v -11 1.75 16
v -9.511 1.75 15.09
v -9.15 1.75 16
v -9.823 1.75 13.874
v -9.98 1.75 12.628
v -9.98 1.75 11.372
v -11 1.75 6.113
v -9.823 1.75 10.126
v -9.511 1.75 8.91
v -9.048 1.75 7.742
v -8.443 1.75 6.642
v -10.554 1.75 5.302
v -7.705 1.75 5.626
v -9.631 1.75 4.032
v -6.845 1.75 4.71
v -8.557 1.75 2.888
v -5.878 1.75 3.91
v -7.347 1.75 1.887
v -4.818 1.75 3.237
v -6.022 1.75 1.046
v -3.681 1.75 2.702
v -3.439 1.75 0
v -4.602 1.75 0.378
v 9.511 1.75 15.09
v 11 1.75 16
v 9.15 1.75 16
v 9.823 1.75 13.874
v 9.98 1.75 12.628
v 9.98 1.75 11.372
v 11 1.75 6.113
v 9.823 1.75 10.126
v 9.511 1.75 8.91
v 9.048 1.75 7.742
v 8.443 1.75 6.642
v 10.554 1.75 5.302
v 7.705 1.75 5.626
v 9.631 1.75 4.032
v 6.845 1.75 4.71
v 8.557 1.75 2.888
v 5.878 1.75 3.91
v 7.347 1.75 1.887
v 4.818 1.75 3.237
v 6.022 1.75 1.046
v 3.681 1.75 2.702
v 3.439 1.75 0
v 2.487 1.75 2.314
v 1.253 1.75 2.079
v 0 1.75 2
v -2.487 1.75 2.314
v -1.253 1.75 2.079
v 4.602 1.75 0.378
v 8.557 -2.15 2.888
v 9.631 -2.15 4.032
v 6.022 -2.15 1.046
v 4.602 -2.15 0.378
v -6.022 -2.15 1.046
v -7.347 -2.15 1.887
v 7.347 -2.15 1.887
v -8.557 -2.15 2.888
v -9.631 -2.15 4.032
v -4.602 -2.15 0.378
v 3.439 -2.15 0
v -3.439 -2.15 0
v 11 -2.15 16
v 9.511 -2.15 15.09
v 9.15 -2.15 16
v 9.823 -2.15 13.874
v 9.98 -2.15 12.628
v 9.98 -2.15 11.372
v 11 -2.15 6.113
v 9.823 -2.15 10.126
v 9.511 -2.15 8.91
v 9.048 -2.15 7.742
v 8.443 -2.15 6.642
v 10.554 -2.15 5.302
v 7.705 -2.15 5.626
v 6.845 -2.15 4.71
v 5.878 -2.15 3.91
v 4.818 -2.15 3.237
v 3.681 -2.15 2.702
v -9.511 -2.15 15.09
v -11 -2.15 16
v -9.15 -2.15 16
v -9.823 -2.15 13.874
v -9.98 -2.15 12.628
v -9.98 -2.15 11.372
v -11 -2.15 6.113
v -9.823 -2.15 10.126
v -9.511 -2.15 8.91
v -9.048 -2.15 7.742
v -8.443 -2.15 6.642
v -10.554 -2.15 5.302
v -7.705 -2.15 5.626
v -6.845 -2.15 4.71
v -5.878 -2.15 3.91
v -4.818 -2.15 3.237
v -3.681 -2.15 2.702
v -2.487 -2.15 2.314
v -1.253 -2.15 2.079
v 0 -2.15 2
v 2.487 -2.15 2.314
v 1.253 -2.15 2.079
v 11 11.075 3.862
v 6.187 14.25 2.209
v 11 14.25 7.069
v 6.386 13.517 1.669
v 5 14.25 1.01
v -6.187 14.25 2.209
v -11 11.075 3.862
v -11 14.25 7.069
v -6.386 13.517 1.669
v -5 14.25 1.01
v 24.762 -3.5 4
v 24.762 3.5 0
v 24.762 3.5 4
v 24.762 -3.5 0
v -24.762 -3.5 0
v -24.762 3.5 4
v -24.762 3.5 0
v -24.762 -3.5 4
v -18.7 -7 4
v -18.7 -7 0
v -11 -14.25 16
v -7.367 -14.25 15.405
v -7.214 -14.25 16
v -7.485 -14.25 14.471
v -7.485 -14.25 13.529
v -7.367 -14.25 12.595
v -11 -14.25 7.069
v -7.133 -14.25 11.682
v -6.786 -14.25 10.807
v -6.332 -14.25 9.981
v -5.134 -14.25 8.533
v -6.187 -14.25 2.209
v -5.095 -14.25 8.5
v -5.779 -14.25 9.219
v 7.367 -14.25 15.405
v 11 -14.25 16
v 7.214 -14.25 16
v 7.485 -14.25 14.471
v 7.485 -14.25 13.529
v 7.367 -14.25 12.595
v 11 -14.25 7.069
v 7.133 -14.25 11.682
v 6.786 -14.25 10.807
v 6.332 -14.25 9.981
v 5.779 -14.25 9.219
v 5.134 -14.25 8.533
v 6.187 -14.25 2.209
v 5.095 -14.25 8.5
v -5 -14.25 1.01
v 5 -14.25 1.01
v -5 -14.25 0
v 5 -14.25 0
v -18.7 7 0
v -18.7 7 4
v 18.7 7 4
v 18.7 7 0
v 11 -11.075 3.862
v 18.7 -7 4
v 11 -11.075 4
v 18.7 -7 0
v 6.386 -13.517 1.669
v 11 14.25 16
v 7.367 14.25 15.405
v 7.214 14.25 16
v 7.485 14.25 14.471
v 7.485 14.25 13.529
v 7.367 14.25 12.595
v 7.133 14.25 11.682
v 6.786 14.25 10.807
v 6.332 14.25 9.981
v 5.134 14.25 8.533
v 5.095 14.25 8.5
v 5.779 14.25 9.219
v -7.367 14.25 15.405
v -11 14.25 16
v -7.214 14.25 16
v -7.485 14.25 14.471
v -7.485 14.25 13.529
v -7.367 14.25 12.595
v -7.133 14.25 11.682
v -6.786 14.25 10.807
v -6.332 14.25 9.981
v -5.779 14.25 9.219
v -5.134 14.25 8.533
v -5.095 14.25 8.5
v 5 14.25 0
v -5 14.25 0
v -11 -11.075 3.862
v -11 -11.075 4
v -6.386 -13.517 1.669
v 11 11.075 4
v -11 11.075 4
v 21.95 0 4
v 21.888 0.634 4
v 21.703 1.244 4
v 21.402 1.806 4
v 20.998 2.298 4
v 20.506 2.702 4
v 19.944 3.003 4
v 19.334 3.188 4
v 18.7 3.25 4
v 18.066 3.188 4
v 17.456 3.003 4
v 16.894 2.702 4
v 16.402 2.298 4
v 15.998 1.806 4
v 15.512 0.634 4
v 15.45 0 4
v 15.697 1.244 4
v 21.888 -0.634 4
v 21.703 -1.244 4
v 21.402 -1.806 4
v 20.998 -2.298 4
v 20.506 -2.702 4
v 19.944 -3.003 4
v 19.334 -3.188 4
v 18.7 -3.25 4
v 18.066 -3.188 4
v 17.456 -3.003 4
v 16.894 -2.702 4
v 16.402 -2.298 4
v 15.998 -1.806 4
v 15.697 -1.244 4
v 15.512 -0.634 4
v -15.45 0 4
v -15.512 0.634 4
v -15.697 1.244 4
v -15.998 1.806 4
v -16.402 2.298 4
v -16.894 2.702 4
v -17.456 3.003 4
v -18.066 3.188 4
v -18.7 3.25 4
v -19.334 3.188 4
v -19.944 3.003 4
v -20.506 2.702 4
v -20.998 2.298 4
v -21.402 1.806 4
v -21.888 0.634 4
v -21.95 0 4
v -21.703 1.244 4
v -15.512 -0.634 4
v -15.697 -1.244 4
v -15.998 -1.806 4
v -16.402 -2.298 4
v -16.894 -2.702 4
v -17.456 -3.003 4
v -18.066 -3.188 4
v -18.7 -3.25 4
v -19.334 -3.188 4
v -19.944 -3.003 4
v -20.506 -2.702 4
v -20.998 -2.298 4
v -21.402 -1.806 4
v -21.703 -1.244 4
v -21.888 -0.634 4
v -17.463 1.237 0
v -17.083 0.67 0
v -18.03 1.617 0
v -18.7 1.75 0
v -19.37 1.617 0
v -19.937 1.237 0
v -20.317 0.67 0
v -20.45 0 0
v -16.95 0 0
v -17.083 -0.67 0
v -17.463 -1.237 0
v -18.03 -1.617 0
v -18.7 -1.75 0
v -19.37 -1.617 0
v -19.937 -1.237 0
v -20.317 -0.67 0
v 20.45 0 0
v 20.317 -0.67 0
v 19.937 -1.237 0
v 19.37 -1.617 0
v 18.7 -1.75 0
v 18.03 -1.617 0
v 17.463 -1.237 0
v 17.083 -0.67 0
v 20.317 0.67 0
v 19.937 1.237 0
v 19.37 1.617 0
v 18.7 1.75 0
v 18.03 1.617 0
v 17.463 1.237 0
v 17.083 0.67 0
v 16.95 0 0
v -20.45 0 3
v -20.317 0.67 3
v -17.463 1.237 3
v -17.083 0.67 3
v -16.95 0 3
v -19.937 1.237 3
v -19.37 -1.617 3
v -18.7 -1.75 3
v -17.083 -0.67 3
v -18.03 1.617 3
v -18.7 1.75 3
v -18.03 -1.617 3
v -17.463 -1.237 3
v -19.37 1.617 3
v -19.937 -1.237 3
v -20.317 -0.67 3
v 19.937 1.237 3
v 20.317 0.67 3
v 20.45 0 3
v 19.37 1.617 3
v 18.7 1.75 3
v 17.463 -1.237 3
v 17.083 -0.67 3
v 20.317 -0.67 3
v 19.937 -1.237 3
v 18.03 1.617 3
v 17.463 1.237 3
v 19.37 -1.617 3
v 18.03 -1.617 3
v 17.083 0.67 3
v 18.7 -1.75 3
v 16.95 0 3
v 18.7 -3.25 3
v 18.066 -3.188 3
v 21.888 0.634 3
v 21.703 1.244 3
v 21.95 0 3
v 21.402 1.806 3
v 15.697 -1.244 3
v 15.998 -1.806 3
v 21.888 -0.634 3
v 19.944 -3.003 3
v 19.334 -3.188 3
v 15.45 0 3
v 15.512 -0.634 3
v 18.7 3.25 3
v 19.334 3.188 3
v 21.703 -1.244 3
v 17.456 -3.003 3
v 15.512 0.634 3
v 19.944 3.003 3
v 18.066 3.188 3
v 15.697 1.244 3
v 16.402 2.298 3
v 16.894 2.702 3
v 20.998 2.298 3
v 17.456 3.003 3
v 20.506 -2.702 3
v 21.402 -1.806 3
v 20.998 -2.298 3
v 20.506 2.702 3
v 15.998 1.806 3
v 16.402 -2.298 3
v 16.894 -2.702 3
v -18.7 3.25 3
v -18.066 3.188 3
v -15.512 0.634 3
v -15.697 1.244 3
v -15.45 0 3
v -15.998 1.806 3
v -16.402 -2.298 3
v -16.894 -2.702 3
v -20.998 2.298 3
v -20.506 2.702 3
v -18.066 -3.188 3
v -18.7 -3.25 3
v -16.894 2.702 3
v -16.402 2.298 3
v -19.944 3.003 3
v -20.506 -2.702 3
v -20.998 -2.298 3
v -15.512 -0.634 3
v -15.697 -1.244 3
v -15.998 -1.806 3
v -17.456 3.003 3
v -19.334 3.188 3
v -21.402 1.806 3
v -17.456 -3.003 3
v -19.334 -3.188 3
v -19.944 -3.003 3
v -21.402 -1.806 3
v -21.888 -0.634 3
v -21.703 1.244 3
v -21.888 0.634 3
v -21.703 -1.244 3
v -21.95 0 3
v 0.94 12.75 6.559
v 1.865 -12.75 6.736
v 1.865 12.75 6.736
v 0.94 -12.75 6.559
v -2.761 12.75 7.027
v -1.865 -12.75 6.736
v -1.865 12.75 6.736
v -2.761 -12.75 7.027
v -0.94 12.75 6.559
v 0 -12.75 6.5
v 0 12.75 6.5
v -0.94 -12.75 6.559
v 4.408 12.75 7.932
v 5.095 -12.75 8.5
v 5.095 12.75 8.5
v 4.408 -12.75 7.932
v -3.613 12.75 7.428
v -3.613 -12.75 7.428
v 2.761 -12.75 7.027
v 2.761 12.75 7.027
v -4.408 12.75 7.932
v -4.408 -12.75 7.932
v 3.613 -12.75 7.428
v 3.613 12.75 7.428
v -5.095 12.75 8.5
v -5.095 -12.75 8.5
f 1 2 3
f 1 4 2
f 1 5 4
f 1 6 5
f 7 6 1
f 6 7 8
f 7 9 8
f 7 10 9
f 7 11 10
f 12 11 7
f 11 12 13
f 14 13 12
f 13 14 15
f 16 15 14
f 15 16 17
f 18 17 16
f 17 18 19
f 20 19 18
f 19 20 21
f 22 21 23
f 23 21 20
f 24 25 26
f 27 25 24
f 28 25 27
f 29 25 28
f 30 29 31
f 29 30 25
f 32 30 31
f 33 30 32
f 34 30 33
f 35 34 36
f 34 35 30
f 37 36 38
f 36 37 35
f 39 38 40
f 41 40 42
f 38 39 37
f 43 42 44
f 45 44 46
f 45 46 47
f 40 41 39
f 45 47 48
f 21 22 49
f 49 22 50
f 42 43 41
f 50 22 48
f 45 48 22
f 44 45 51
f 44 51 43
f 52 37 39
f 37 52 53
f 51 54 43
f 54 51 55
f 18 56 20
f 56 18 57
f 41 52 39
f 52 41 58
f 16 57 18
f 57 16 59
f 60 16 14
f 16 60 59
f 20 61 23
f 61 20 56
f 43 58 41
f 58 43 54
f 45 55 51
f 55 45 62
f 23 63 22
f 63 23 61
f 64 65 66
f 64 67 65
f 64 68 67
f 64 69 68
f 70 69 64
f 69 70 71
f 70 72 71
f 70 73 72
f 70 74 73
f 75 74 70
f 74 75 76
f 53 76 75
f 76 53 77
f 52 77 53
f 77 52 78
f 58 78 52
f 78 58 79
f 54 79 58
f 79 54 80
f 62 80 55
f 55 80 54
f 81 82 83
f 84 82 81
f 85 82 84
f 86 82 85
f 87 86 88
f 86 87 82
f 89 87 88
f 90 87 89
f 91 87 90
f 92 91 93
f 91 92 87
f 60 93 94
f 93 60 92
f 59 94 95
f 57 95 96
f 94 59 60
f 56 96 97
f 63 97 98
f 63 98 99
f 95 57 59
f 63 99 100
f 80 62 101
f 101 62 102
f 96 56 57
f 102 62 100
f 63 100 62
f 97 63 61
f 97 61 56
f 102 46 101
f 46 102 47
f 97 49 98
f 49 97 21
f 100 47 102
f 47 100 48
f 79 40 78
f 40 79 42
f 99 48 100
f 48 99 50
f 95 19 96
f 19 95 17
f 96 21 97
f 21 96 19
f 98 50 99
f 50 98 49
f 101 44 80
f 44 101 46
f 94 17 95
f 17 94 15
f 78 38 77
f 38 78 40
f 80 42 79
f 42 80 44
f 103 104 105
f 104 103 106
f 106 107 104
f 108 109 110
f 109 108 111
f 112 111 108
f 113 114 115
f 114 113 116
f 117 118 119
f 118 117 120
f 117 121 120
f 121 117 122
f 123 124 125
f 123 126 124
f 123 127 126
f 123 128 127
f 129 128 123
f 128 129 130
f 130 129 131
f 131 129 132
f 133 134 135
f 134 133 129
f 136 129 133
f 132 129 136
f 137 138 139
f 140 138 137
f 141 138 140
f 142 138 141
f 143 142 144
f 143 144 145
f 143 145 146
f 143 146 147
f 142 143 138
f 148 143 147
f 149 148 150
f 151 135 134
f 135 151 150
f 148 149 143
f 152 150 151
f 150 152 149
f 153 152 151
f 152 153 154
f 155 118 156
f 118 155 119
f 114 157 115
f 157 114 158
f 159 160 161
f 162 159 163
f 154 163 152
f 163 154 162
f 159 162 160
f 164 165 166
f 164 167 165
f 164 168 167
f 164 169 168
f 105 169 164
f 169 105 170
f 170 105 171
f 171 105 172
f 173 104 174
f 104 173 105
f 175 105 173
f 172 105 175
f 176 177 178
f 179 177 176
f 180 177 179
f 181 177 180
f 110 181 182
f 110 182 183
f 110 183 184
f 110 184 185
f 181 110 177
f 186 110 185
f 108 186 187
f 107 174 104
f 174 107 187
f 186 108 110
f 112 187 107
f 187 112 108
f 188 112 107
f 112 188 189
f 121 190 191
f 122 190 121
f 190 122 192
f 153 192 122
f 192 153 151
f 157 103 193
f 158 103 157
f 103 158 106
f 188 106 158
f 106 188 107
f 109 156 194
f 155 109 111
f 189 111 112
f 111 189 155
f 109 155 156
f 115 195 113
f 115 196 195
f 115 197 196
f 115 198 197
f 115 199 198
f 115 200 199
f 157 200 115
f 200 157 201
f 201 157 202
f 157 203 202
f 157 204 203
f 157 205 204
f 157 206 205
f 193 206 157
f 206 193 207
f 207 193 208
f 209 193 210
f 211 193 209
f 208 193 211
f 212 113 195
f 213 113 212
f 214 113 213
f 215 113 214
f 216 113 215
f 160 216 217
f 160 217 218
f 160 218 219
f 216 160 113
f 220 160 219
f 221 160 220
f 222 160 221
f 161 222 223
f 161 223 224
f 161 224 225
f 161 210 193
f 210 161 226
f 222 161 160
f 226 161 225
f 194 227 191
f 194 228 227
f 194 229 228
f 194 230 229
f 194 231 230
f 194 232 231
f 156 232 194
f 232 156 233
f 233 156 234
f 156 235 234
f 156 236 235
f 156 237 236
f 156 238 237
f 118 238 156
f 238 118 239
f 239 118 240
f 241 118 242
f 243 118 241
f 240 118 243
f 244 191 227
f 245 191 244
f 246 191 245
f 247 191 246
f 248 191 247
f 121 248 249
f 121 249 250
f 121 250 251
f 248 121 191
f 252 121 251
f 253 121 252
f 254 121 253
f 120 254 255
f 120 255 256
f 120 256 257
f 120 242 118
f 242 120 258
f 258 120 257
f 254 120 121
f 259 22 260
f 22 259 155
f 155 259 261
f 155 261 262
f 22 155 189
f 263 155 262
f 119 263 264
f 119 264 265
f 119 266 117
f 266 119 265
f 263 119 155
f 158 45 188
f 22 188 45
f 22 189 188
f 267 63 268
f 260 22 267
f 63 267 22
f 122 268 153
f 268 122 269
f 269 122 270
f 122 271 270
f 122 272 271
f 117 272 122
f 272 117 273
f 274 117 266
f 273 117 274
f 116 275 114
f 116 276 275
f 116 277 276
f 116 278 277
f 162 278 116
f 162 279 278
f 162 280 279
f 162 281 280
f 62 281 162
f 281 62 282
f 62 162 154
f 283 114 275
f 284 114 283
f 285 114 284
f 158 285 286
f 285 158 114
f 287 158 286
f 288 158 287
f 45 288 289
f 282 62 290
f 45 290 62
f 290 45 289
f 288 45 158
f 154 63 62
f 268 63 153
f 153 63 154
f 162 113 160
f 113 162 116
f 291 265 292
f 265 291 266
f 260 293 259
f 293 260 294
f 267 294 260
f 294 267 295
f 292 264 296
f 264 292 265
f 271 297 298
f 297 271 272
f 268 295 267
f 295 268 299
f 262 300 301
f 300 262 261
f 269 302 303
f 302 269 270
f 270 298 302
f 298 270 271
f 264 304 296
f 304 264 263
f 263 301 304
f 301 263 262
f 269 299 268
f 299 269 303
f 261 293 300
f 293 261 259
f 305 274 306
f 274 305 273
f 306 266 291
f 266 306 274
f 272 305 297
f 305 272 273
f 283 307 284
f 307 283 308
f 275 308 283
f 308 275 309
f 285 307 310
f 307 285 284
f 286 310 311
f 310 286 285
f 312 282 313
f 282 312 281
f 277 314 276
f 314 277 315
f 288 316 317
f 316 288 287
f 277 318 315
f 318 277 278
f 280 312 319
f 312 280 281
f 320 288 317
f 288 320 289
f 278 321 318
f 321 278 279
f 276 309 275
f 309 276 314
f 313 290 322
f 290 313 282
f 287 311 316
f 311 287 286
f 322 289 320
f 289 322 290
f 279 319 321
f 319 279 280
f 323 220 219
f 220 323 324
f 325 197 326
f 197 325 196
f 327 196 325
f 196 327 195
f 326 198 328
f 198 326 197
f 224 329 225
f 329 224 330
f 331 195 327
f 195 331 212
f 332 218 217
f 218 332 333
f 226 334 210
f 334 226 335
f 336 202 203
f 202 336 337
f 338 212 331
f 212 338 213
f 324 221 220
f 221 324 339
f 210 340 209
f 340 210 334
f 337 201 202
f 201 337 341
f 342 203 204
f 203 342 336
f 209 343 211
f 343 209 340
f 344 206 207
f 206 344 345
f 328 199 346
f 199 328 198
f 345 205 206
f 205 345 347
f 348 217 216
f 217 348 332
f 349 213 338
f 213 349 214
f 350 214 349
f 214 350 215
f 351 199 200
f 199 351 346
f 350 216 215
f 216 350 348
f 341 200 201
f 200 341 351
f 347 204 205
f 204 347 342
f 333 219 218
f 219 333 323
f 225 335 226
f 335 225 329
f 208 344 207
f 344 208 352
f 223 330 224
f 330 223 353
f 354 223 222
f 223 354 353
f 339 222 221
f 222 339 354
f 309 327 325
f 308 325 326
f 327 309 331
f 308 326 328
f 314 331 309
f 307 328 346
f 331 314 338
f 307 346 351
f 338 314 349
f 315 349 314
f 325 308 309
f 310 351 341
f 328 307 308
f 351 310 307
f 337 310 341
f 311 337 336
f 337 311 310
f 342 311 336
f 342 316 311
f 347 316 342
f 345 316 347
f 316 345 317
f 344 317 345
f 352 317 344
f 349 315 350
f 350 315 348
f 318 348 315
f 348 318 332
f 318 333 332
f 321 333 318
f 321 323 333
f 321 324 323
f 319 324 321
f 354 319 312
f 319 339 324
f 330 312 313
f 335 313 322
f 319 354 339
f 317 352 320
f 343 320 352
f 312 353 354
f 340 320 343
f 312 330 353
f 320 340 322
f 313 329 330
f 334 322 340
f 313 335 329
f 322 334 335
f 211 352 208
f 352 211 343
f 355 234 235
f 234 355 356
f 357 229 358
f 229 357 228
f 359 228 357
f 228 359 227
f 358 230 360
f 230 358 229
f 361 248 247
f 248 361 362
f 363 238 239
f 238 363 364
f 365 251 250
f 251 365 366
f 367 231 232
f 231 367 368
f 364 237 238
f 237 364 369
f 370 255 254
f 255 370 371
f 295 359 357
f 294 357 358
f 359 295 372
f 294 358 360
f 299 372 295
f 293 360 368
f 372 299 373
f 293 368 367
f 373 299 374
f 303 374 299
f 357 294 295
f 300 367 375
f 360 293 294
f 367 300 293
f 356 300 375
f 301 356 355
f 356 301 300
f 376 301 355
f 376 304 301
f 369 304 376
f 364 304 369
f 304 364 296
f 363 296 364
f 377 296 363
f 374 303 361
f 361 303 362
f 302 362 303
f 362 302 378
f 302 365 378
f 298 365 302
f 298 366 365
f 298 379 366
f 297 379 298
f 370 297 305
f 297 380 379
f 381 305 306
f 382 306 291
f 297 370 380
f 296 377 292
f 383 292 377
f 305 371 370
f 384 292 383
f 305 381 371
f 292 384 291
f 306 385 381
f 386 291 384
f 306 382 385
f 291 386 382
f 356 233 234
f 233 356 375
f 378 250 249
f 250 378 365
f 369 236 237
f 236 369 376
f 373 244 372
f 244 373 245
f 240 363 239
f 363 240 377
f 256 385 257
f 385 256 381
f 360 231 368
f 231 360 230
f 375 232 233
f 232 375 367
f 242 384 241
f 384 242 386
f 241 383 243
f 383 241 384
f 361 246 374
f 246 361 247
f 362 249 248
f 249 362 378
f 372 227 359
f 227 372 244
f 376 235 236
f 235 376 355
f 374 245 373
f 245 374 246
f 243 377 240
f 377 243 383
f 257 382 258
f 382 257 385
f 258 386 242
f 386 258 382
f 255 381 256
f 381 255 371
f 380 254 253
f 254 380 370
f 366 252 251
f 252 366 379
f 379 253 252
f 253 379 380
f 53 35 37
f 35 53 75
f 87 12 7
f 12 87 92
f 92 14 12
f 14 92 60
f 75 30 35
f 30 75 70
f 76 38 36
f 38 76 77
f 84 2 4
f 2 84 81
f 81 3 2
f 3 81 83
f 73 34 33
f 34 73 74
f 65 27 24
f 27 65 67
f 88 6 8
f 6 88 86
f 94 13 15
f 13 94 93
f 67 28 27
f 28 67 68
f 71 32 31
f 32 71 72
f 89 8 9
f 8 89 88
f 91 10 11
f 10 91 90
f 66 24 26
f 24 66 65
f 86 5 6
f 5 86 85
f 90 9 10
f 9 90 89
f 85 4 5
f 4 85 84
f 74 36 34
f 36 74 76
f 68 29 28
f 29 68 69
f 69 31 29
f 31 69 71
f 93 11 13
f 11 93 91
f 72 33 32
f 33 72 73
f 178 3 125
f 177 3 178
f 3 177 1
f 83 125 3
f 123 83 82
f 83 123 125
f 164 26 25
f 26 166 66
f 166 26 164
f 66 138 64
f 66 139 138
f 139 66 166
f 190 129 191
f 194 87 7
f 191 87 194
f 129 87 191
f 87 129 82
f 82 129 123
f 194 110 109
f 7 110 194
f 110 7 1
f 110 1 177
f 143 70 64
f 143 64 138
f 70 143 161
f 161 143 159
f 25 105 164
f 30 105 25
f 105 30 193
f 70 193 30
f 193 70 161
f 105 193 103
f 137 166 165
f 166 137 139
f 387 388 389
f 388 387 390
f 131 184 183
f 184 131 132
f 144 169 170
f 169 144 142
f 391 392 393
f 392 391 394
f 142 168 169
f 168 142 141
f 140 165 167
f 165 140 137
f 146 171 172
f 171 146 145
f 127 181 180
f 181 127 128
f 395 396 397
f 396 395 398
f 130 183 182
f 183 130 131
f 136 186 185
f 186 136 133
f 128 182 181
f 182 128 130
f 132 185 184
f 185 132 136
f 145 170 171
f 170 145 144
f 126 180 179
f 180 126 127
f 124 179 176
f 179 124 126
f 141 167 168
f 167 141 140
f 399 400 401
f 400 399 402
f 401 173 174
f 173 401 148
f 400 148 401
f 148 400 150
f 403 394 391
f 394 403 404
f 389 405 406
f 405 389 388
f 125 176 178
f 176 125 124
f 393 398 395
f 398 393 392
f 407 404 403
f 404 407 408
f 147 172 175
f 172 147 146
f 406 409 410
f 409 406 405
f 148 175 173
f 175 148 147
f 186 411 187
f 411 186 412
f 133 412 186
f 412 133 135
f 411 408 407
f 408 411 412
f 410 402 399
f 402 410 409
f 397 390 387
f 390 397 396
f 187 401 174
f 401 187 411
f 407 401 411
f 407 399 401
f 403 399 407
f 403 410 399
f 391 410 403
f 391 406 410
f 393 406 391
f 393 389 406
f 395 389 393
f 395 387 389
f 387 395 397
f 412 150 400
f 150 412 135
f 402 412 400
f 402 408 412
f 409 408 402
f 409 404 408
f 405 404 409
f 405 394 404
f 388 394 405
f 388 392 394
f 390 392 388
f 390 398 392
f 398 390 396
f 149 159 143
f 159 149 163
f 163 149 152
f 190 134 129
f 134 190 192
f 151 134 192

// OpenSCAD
// file: ../configuration.scad
// Layer high for the printing [mm]
layer_height = 0.20; //Slic3r->Print Settings->Layers and perimeters->Layer height

// Spare for the screws heads [mm]
spare = 0.75;
// M6 screw diameter [mm]
M6_head_diameter = 13.6+spare;
//M6_head_diameter = 10.6+spare;
//M6_head_diameter = 12+spare;

// M6 head high (for hiding it) [mm]
//M6_head_height = 4;
M6_head_height = 3.6;
//M6_head_height = 4.5;

// Screws and rods diameters
M8_smooth_rod_diameter = 8.3;
M8_smooth_rod_diameter_catch = 8.4;
// Prumer 8mm tyce
rod_8mm_d = 8.2; //pro dil z-top
M6_diameter = 6.6;
M6_dia=M6_diameter; //pro dil z-top
M6_diamater_horizontal = 6.5;
M3_diameter = 3.7;
M3_diameter_horizontal = 3.5;

//matice trapézové tyče
TRAP_diameter_externa=22; //průmer vnější 


// Nuts diameters
M3_nut_diameter = 7.0;
M3_nut_diameter_horizontal = 6.7;

// ALU profile parameters
ALU_cut_width = 7.9;
ALU_cut_width_horizontal = 7.7;

// Sirka matky do profilu (pokud neni pouzita, tak 0)
//profile_nut_width = 9.5;
profile_nut_width = 0; //pro z-top

// Motors length/depth (for axes Z and Y)
//SX17-1003LQFE (recommended for the Z axis)
motor_length = 29.5;
//SX17-1003 (recommended for the Z axis)
//motor_length = 34;
//SX17-1005
//motor_length = 40;
//SX17-0905 - this motor is too high - the Z end stop holder has to be adjusted
//motor_length = 48;

// Extrusion width [mm]
extrusion_width = 0.66; //Slic3r->Print Settings->Advanced->Default extrusion width

/// Belt type ******************************************************

// GT2 
belt_tooth_distance = 2;
belt_tooth_ratio = 0.5;
belt_tooth_height = 1.4;
belt_thickness = 2.3;

/*
// T2.5
belt_tooth_distance = 2.5;
belt_tooth_ratio = 0.68;
*/
// main file
// PRUSA Mendel  
// y LM8UU holder
// GNU GPL v3
// Josef Průša
// josefprusa@me.com
// prusadjs.cz
// http://www.reprap.org/wiki/Prusa_Mendel
// http://github.com/prusajr/PrusaMendel

include <../configuration.scad>

/**
 * @id bushing
 * @name Bushing
 * @category Printed
 * @id bushing
 */ 
 
y_linear_bearings();

// Linear bushing options

m3_diameter = 3.5;
lm8uu_diameter=15;
lm8uu_length=24;
lm8uu_radius = lm8uu_diameter / 2;
block_height = 2*lm8uu_length+17;

screw_dist = 37.4;

//cut_corners(true, false, true, false); 

module cut_corners(lf,lb,rf,rb)
{
  difference()
  {
	lm8uu_bearing_holder();
	if(lf) translate([(10)-3,(-28.5/2)+3,0]) rotate(a=[0,0,45]) rotate(a=[35,0,0]) translate([0,-5,0]) cube(size = [20,10,20], center = true);
	if(lb)translate([(-10)+3,(-28.5/2)+3,0]) rotate(a=[0,0,-45]) rotate(a=[35,0,0]) translate([0,-5,0]) cube(size = [20,10,20], center = true);
	mirror([ 0, 1, 0 ])
	{
	  if(rf)translate([(10)-3,(-28.5/2)+3,0]) rotate(a=[0,0,45]) rotate(a=[35,0,0]) translate([0,-5,0]) cube(size = [20,10,20], center = true);
	  if(rb)translate([(-10)+3,(-28.5/2)+3,0]) rotate(a=[0,0,-45]) rotate(a=[35,0,0]) translate([0,-5,0]) cube(size = [20,10,20], center = true);
	}
  }
}

module linear_holder_base(length)
{	
difference()
  {
    translate([-6,0,length/2]) cube(size = [16,22,length], center = true);

    translate([0,0,-2]) cylinder(h = length+4, r=lm8uu_diameter/2, $fn=50);
  }
}

module y_linear_bearings()
{
  difference()
  {
	hull()
	{
	  translate([0,0,2]) cube(size = [10,28.5,4], center = true);
	  translate([-screw_dist/2,0,0])rotate(a=[0,0,30])cylinder(h=4, r=7, $fn=6);
	  translate([screw_dist/2,0,0])rotate(a=[0,0,30])cylinder(h=4, r=7, $fn=6); 
	}
	translate([-screw_dist/2,0,-0.1])cylinder(r=m3_diameter/2, h=10, $fn = 16);
	translate([screw_dist/2,0,-0.1])cylinder(r=m3_diameter/2, h=10, $fn = 16);
	  translate([screw_dist/2,0,3]) cylinder(d=6.5, h=30, $fn = 32);
	  translate([-screw_dist/2,0,3]) cylinder(d=6.5, h=30, $fn = 32);

	//hack
	translate([0,14.25,4.5]) rotate(a=[90,0,0]) translate([0,9.5,0]) rotate(a=[0,0,90])
	{
	  translate([-2,0,12.5]) ziptie();
	}
  }
  
  cut_corners(true, true, true, true); 
}

lm8uu_holder_length = lm8uu_length+4.5;
lm8uu_holder_width= lm8uu_diameter+5;

module lm8uu_bearing_holder()
{
  translate([0,14.25,4.5])rotate(a=[90,0,0])translate([0,9.5,0]) rotate(a=[0,0,90])
  {
	difference()
	{
	  union()
	  {
		linear_holder_base(lm8uu_length+4.5);
		translate([-10-2,0,lm8uu_holder_length/2]) cube(size = [4,20,lm8uu_holder_length], center = true);
	  }
	  
	  translate([-2,0,12.5]) ziptie();
	  translate([-14+3,screw_dist/2,14.25]) rotate([0,90,0]) cylinder(r=7/2, h=30, $fn = 32);
	  translate([-14+3,-screw_dist/2,14.25]) rotate([0,90,0]) cylinder(r=7/2, h=30, $fn = 32);
	}
	translate([-(10-5.5)/2-5.5,0,0.75]) cube(size = [10-5.5,20,1.5], center = true);
	translate([-(10-5.5)/2-5.5,0,lm8uu_length+3.75]) cube(size = [10-5.5,20,1.5], center = true);
  }
}

module ziptie()
{
  difference()
  {
	translate([0,0,0]) cylinder(h = 3.9, r=12.5, $fn=50);
	translate([0,0,0]) cylinder(h = 5, r=10, $fn=50);
  }
}
